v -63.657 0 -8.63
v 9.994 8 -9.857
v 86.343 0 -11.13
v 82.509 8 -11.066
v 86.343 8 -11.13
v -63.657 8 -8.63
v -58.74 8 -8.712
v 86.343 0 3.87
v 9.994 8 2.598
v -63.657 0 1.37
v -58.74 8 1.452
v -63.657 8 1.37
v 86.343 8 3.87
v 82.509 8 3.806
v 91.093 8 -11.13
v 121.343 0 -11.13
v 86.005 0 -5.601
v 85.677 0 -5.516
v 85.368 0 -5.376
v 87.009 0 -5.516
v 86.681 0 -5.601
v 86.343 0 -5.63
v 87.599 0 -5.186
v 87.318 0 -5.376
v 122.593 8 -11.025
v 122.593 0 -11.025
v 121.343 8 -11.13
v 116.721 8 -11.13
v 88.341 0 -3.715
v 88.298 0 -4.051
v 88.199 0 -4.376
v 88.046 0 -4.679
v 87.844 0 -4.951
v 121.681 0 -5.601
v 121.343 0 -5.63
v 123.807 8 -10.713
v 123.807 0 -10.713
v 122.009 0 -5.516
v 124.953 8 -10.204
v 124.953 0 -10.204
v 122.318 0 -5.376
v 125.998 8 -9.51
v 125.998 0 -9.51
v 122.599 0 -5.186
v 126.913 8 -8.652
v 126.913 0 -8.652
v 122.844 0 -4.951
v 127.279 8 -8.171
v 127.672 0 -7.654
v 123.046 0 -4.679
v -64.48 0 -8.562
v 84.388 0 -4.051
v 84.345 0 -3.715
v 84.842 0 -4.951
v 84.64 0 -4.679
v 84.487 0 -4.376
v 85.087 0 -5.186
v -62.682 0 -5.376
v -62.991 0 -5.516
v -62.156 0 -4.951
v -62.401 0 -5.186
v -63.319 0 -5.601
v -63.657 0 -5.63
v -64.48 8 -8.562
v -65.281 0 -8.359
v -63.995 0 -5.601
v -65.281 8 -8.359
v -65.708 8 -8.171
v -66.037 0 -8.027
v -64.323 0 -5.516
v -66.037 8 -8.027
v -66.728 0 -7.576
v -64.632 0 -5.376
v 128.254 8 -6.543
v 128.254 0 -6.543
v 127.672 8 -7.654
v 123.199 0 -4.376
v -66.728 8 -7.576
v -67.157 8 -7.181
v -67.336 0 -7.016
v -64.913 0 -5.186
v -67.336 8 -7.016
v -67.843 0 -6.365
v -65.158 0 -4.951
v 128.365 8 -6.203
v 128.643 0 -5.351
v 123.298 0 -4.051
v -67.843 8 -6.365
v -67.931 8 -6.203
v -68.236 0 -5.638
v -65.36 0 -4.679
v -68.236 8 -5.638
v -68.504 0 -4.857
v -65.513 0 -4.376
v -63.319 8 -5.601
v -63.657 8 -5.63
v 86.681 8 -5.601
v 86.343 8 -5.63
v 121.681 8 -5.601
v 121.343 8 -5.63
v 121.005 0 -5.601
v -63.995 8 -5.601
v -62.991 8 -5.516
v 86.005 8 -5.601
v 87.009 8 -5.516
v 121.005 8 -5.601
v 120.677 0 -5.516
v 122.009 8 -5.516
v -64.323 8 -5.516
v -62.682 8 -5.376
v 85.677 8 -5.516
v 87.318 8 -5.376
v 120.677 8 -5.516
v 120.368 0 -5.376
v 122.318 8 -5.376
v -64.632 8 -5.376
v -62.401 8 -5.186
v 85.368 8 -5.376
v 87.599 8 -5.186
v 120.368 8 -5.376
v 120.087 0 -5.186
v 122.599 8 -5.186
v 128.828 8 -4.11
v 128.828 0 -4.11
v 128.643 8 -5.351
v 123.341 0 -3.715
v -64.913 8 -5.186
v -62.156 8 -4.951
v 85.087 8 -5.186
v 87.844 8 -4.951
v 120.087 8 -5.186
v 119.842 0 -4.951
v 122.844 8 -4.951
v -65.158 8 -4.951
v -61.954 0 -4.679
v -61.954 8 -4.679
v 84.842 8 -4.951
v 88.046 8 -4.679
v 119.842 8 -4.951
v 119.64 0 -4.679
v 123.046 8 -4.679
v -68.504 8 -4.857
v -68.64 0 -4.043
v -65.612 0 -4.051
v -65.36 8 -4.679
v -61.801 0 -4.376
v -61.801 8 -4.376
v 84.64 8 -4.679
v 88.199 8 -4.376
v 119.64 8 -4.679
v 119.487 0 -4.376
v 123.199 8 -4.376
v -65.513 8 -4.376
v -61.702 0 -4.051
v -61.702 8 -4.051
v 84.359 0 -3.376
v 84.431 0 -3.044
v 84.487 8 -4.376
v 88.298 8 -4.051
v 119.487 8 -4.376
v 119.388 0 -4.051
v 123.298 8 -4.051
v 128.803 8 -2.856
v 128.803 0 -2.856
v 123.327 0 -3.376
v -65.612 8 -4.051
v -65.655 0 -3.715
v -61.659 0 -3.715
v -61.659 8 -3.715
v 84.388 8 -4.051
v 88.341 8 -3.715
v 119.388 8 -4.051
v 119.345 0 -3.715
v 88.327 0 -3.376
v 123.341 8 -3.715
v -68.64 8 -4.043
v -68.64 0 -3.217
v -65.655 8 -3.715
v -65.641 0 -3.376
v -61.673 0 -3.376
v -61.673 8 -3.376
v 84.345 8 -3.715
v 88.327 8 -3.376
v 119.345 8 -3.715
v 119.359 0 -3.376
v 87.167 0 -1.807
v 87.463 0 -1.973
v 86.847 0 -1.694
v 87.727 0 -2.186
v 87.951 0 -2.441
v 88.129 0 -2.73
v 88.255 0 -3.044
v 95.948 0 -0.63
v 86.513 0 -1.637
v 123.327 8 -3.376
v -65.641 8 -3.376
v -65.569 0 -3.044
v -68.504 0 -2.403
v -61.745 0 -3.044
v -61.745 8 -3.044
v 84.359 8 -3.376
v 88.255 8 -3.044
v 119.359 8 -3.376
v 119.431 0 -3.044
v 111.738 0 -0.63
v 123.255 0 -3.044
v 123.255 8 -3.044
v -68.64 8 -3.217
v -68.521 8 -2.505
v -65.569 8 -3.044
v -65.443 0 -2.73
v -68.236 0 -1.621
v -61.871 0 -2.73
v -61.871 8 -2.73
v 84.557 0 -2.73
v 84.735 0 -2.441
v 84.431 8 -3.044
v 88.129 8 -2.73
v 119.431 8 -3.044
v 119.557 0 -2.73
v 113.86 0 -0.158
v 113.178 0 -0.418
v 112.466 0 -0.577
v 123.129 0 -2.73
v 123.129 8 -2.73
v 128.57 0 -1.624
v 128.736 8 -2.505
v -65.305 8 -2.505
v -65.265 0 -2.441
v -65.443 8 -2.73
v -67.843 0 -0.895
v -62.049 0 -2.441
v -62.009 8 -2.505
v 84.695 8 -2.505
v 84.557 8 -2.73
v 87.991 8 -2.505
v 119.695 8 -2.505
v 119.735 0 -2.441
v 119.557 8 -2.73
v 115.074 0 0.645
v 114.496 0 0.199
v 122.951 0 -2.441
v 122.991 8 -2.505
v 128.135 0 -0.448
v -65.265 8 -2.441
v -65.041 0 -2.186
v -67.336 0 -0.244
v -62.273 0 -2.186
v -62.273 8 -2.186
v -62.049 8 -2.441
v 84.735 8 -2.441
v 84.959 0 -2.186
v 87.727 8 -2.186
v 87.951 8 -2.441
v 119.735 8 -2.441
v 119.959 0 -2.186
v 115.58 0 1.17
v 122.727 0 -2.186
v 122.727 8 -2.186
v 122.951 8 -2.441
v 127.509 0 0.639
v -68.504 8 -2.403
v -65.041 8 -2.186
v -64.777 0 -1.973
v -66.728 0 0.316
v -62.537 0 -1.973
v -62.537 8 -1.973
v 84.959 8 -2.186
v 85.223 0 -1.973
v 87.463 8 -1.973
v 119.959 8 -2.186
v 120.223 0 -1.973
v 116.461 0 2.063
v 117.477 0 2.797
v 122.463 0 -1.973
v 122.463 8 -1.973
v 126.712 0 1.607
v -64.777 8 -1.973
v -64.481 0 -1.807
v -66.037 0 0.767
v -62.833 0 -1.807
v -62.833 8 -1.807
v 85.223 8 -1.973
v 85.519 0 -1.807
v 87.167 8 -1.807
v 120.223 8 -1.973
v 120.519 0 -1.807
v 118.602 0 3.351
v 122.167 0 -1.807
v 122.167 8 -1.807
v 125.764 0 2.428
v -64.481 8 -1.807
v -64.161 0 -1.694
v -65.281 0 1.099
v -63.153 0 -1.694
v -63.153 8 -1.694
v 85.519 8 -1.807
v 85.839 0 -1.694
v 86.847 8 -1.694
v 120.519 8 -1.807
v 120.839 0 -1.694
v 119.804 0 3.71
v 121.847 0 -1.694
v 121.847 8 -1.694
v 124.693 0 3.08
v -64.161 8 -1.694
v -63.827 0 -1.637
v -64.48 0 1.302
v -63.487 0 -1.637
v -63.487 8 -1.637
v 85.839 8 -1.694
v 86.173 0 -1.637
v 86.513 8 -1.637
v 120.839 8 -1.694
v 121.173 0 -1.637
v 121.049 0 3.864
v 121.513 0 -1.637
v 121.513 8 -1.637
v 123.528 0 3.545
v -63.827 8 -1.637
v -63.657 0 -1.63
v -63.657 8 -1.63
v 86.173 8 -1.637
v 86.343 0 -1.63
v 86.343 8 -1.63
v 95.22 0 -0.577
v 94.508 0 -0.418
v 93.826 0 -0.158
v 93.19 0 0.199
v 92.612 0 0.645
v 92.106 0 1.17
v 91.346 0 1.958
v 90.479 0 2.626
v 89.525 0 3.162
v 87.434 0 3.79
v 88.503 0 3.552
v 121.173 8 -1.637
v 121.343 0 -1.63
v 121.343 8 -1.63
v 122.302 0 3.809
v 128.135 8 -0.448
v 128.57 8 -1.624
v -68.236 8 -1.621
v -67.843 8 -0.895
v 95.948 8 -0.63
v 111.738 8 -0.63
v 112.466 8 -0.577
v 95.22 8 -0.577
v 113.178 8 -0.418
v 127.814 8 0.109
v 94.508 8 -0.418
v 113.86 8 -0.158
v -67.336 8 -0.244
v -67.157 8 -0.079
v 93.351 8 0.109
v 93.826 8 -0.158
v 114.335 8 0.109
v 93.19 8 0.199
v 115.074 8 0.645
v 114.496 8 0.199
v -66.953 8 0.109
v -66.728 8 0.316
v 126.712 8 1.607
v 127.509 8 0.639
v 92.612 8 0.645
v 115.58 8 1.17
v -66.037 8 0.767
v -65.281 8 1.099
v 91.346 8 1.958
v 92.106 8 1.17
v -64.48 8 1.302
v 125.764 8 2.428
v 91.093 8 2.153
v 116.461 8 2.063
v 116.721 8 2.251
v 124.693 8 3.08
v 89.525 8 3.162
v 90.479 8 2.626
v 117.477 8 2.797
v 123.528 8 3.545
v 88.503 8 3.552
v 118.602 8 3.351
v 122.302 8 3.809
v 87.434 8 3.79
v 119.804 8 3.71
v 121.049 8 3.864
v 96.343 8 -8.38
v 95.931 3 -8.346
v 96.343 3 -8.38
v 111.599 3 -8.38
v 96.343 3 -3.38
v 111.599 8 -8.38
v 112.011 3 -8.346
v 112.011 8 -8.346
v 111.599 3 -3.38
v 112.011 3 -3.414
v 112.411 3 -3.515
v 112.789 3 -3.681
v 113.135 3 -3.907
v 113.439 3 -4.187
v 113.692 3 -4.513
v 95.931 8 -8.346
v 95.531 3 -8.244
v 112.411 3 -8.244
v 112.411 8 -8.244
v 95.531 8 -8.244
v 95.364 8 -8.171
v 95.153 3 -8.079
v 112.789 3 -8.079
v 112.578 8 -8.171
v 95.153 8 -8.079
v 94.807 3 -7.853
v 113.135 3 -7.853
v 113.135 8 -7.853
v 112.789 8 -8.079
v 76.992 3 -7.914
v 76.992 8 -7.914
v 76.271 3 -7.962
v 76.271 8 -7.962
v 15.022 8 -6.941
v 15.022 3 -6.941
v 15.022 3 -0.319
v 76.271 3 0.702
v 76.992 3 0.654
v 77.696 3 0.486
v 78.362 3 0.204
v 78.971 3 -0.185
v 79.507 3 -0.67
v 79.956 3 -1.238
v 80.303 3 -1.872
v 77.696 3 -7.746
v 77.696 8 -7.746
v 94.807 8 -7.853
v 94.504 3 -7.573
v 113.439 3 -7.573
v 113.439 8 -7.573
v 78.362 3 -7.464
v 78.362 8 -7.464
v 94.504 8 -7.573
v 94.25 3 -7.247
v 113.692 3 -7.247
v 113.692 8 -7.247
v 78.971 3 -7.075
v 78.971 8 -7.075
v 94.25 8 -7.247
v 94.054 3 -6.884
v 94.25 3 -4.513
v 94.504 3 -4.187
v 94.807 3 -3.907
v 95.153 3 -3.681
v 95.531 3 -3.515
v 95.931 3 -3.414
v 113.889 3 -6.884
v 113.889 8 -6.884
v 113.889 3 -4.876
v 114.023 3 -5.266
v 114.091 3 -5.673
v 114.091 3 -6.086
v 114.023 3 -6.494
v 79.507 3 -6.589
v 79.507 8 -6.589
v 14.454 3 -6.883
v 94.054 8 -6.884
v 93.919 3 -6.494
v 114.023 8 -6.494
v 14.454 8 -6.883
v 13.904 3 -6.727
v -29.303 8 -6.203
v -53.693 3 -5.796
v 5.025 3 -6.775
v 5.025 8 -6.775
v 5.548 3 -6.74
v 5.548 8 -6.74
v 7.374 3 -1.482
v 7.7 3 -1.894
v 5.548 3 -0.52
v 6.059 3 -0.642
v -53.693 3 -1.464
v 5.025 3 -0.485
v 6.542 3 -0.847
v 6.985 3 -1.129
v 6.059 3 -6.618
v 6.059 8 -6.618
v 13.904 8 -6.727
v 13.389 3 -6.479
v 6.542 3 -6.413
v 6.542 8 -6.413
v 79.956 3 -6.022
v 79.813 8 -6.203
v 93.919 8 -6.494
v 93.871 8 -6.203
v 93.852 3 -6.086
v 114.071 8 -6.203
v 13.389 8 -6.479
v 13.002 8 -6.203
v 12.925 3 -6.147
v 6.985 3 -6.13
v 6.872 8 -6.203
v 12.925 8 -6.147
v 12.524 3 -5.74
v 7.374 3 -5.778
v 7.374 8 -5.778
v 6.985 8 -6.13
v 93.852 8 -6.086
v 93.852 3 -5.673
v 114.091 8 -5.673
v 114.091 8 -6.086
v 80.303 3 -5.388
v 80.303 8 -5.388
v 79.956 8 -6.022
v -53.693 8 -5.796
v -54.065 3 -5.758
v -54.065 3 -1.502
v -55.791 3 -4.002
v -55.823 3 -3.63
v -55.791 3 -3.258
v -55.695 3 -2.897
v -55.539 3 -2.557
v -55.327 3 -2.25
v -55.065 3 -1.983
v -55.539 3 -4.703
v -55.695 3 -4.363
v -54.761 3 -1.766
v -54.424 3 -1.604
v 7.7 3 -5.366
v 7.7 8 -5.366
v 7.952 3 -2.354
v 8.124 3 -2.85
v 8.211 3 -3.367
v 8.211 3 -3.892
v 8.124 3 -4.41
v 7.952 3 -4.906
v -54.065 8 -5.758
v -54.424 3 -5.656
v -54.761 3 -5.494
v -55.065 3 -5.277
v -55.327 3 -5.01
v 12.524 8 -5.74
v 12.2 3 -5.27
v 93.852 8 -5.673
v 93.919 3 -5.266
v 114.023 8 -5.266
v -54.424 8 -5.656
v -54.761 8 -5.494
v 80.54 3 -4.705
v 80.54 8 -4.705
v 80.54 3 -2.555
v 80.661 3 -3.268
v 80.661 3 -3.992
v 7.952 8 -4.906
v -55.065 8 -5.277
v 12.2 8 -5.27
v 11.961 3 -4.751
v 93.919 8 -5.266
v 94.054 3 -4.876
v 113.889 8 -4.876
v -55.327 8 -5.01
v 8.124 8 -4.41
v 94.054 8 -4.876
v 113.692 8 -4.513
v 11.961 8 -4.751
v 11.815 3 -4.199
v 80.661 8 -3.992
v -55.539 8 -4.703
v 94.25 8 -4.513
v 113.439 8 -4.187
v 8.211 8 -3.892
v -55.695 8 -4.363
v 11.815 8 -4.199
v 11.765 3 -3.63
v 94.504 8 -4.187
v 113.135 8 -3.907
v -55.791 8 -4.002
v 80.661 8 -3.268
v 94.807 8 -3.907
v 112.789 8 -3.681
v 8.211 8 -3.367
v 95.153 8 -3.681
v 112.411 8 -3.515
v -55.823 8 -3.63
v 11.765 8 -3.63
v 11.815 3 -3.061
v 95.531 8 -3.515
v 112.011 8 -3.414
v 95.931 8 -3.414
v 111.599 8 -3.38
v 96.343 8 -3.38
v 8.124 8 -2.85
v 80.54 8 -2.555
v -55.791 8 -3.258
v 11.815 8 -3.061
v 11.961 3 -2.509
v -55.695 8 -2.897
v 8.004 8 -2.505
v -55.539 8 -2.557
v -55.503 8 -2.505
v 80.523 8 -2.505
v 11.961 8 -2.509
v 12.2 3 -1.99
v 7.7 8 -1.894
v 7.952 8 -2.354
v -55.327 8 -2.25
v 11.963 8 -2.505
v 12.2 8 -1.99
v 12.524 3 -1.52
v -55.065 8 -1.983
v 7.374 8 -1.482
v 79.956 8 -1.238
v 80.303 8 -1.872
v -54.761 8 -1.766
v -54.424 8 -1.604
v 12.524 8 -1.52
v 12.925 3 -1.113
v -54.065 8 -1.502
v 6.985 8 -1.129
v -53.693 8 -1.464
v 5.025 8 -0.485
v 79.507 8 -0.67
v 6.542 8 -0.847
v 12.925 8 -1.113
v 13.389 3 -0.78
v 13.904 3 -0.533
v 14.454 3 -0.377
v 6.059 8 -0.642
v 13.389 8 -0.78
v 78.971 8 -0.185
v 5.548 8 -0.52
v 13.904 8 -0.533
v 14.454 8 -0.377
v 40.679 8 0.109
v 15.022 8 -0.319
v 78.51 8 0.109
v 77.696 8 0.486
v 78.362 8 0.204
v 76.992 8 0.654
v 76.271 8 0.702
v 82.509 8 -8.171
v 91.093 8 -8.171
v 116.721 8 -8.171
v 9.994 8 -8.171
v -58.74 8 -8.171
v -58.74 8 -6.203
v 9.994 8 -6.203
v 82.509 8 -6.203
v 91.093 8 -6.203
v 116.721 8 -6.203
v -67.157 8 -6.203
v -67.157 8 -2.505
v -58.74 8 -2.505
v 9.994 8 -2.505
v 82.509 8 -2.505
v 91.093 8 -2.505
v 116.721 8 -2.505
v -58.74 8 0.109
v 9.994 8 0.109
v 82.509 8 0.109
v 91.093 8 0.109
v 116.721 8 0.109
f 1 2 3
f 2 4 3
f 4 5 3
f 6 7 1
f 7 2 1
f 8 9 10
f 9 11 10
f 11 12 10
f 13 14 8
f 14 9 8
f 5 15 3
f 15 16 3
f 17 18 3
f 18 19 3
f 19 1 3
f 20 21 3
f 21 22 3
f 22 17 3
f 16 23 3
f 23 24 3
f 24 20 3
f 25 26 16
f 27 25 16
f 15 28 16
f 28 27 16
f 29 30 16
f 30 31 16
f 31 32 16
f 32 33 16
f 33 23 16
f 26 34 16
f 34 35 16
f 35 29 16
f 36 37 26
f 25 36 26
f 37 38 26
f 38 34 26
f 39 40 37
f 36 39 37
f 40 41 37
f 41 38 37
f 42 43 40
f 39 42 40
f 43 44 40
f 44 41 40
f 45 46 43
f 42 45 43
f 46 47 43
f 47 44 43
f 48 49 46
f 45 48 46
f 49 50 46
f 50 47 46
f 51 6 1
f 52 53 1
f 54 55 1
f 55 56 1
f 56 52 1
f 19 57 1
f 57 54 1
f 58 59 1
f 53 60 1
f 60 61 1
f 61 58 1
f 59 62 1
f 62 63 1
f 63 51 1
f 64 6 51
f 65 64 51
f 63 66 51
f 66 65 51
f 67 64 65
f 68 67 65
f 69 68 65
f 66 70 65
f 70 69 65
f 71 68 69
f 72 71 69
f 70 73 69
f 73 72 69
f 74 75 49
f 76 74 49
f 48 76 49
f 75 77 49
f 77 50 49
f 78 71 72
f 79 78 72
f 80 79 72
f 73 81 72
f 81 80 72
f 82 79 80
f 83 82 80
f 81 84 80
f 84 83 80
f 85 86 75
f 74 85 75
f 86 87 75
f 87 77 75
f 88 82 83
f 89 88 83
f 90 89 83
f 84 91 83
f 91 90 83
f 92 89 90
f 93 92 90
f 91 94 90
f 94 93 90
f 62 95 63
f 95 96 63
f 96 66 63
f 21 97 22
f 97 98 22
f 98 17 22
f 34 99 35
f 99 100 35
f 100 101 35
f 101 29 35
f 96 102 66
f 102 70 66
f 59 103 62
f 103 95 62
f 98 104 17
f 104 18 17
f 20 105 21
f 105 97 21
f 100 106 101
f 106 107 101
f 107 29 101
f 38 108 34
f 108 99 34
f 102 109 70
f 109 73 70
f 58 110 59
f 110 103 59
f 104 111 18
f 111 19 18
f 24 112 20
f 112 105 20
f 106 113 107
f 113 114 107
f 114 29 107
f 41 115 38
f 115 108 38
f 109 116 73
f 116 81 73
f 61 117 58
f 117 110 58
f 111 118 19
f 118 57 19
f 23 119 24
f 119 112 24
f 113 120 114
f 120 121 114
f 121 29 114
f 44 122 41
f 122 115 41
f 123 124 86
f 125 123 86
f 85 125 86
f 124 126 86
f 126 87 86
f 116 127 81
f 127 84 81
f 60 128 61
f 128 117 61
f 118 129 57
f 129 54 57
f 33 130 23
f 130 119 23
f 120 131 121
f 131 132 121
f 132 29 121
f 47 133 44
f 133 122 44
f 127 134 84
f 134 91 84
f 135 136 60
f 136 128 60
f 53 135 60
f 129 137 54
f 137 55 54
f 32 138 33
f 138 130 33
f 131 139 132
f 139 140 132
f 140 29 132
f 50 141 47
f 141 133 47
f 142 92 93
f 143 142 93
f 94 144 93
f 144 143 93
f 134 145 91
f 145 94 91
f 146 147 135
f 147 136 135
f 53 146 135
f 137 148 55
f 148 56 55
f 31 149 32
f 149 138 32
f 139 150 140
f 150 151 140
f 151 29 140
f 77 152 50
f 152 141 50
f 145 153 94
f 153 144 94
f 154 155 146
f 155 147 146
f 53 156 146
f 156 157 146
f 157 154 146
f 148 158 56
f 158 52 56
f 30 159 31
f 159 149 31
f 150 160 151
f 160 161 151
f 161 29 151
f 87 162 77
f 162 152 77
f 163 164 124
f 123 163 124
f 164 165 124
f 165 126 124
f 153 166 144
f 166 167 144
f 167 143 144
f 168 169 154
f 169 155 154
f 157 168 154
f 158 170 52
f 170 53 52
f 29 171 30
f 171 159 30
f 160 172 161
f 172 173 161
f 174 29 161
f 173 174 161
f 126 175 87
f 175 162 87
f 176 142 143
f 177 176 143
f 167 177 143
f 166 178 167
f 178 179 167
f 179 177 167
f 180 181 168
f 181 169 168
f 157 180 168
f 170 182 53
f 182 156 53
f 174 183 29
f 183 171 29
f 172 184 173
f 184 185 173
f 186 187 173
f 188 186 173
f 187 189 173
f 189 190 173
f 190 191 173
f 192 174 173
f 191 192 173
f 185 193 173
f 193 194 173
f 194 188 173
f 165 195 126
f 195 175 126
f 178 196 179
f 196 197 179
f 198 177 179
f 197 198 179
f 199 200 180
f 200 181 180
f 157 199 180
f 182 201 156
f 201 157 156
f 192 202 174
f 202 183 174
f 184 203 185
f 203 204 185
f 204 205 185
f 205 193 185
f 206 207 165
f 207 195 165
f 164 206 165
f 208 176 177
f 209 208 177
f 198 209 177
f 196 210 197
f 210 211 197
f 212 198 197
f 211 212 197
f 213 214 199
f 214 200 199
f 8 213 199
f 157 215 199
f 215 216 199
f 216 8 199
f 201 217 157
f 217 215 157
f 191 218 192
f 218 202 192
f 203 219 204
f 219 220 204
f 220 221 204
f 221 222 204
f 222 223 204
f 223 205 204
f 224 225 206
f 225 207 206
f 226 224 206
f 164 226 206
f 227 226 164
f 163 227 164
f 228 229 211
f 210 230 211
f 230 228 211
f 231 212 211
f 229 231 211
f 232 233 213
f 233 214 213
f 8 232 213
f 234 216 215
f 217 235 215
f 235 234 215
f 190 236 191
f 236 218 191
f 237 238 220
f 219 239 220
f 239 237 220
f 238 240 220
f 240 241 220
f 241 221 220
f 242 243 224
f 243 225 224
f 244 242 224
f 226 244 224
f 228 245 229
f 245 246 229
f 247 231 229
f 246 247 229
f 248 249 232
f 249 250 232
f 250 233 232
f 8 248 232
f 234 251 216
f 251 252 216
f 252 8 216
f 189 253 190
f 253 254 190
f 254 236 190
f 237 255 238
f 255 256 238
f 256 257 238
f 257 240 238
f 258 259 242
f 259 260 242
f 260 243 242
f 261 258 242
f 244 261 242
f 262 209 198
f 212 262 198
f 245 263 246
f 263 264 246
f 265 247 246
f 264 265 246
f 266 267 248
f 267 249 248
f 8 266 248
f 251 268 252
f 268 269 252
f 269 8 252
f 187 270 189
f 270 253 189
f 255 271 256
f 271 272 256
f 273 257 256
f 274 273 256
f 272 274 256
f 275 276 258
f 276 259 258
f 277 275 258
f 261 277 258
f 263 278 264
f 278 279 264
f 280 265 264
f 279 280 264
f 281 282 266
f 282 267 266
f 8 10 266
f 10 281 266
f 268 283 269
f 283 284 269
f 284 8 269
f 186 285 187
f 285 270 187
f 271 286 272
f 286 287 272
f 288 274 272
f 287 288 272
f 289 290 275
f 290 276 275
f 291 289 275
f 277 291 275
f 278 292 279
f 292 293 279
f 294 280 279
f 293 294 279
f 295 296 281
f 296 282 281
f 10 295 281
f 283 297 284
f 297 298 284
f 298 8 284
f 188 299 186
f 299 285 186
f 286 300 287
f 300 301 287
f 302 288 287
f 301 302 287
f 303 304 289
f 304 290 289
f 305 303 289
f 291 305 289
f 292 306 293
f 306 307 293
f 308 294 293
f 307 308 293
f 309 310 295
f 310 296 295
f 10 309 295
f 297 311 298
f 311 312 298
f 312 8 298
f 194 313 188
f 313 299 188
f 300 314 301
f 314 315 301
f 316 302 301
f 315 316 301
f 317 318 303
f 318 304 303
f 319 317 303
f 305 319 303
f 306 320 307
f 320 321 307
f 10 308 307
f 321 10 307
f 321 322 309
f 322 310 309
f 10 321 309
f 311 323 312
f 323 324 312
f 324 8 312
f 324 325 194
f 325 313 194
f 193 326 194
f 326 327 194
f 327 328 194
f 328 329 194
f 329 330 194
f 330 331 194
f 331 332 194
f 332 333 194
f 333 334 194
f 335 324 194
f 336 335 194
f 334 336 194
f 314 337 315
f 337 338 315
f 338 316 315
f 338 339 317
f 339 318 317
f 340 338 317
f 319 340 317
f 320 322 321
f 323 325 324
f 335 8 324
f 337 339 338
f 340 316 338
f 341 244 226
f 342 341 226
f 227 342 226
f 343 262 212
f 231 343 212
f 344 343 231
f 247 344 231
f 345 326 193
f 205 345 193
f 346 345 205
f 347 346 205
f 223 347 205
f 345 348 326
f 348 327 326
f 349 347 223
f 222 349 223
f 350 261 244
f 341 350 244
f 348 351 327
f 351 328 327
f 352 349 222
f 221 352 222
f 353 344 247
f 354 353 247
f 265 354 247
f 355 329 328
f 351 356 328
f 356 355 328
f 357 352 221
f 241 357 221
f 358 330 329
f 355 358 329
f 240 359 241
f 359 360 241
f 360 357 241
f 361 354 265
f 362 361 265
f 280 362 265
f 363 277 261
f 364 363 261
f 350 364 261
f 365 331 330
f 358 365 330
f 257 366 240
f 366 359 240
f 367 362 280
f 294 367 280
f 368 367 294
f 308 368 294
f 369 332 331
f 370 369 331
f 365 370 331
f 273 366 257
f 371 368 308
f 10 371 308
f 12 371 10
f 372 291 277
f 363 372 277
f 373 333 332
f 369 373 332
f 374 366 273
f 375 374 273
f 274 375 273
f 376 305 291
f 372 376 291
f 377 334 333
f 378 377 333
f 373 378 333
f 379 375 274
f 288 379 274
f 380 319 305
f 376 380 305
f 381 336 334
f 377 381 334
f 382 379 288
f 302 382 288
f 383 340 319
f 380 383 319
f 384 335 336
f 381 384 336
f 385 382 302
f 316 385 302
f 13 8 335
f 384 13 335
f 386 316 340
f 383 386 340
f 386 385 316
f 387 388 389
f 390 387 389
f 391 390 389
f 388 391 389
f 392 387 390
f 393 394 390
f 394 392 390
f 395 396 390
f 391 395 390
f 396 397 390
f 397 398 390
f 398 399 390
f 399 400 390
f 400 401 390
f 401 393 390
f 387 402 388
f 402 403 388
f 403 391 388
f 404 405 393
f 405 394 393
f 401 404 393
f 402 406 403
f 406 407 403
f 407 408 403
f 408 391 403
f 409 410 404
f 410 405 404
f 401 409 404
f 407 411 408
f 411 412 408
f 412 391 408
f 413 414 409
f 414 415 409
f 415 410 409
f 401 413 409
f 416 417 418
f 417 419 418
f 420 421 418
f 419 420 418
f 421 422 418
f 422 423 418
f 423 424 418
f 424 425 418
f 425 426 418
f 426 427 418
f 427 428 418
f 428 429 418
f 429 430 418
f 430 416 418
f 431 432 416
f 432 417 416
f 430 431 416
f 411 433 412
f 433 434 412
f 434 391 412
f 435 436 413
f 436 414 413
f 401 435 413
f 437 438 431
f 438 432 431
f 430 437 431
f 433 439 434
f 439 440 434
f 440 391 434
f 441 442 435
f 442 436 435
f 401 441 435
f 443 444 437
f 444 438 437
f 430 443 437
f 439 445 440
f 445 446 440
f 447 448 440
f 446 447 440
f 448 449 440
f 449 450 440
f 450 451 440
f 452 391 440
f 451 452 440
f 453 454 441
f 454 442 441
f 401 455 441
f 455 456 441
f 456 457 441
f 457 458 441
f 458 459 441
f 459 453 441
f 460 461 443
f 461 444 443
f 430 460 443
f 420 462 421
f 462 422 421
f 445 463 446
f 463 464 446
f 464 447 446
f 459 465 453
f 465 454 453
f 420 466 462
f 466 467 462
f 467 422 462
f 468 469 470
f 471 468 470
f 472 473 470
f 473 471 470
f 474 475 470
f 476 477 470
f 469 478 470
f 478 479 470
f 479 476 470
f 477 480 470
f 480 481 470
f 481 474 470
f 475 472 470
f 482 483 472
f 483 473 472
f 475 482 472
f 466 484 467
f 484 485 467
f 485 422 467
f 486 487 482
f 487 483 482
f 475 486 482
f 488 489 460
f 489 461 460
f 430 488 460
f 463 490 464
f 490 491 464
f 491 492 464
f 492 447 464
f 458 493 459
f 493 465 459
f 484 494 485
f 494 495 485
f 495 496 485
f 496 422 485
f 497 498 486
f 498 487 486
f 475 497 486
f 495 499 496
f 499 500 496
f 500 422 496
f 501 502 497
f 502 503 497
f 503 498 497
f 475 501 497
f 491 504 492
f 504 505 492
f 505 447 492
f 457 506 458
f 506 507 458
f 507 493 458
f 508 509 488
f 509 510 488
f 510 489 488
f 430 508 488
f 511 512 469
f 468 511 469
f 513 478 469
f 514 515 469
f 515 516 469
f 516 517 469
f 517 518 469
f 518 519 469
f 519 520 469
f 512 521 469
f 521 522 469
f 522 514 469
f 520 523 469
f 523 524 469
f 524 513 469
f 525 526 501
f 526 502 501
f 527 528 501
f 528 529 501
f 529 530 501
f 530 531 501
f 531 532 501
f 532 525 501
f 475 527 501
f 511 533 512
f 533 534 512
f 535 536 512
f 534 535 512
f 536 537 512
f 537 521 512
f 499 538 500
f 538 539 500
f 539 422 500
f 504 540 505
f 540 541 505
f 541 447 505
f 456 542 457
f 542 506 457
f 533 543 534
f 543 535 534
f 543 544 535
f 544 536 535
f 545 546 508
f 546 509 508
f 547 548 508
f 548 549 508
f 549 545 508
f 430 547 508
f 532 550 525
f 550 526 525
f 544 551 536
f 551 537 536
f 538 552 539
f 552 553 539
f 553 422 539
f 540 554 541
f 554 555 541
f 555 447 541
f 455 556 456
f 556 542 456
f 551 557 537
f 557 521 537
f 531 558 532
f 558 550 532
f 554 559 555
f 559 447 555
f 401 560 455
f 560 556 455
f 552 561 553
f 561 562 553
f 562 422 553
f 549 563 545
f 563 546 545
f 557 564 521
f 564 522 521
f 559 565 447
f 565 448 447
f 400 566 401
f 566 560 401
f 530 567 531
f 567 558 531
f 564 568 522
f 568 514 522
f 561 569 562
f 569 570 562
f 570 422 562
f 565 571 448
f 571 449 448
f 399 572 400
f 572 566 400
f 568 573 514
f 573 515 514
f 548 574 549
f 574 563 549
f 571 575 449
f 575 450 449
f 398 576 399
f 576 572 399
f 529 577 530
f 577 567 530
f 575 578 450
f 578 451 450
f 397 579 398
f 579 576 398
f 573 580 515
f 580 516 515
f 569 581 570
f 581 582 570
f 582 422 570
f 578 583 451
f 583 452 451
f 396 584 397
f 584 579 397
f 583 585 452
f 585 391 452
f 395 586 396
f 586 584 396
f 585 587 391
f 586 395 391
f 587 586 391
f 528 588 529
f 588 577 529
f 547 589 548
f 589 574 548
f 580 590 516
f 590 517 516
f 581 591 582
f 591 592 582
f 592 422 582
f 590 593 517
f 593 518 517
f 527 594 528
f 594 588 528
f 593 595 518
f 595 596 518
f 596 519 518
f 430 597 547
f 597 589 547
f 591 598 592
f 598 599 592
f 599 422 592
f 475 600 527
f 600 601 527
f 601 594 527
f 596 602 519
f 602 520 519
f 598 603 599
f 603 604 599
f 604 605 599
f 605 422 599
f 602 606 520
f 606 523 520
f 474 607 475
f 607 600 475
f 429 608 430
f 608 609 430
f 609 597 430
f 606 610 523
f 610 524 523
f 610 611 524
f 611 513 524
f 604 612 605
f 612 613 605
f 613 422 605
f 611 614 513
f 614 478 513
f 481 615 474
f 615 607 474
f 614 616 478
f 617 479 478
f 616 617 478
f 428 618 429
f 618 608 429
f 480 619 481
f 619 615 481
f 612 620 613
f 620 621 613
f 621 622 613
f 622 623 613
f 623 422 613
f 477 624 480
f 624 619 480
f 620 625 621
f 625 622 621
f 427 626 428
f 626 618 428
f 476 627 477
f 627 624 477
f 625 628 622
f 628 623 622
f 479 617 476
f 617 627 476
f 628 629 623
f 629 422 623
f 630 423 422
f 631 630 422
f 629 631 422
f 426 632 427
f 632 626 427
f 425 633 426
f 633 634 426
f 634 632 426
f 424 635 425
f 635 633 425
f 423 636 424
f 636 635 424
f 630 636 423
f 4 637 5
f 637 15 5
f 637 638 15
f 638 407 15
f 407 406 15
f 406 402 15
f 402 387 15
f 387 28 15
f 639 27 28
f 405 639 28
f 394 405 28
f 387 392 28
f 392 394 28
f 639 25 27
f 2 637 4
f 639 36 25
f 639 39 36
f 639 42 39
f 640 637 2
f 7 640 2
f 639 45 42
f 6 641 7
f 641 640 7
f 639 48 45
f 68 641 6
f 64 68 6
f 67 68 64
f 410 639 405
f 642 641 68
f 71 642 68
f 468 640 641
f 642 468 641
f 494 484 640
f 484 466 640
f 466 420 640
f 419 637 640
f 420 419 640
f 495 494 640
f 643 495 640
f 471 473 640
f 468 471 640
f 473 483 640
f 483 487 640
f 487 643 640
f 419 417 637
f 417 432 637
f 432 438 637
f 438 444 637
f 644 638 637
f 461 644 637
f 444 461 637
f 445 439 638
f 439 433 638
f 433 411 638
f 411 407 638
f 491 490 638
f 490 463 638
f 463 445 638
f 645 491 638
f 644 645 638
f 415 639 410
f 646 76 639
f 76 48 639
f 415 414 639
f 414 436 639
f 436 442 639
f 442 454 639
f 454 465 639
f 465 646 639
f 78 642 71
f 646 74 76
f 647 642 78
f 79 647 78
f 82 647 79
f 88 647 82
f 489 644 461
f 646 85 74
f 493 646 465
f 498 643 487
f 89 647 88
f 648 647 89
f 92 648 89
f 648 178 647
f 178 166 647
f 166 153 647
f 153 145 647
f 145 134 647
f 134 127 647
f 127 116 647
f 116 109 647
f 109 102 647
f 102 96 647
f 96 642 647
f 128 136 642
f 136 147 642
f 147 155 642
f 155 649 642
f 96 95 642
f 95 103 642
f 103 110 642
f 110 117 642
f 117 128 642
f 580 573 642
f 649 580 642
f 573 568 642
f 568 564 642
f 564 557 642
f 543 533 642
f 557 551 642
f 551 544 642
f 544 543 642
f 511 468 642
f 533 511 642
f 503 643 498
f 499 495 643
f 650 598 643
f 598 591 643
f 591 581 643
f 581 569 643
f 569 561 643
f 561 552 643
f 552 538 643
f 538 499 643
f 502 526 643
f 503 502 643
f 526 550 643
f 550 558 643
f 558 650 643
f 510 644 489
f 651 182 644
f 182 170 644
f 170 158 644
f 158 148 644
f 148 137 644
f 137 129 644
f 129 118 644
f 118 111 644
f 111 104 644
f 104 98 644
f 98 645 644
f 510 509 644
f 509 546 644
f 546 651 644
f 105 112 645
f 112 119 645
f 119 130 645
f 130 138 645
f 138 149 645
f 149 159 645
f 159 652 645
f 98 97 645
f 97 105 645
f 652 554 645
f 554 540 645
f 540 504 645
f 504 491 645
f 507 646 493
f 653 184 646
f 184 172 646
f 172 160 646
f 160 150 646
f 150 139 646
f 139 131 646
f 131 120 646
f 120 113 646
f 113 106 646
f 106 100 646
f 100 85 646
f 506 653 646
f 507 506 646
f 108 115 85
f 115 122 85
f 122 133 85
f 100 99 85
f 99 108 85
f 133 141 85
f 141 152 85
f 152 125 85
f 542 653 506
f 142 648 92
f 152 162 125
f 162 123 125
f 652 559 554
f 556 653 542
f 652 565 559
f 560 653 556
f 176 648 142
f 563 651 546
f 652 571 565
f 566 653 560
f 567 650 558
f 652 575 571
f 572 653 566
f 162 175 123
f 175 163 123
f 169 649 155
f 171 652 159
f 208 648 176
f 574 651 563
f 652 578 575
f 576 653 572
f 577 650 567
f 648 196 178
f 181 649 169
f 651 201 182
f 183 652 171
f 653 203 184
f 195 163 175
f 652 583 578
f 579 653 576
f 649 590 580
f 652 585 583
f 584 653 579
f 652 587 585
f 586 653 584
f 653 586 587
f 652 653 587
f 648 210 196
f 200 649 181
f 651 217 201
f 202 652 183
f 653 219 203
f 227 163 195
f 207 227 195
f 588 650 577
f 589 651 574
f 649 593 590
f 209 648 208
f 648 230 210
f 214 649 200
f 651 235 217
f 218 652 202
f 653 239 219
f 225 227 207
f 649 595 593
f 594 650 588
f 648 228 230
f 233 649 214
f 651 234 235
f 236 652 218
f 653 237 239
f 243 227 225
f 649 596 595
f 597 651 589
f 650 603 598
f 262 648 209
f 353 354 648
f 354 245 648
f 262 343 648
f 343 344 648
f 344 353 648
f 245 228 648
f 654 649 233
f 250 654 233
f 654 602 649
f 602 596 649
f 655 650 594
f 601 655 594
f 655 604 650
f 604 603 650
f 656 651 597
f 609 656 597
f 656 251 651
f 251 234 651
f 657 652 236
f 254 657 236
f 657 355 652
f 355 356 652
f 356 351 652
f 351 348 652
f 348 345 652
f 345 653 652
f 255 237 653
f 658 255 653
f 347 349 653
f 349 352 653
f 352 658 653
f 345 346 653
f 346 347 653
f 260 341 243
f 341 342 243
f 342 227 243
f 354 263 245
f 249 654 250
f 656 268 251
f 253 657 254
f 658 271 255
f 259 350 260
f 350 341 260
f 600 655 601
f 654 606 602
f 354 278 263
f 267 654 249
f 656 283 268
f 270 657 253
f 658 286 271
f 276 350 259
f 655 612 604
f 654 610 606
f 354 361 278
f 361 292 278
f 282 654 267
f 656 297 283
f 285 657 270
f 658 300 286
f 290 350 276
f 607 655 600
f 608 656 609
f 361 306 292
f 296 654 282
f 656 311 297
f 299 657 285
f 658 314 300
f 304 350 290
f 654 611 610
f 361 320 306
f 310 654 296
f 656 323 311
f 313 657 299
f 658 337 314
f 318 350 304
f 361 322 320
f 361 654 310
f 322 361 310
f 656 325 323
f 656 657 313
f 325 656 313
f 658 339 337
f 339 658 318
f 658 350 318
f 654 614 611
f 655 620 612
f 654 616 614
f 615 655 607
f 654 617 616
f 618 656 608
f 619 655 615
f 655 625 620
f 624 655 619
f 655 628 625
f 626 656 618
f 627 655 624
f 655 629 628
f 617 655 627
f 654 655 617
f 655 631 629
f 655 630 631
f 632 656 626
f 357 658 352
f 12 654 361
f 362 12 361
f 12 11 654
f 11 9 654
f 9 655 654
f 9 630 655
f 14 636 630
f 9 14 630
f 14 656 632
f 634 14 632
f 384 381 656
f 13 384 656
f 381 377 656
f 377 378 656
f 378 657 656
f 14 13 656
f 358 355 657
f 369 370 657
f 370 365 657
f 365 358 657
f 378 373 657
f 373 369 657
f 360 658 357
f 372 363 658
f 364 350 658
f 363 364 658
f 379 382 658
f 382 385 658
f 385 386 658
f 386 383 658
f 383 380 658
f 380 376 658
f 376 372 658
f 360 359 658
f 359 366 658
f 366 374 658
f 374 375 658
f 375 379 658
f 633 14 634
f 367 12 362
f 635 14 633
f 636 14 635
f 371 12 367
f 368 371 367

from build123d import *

# Parameters (mm, degrees)
SKETCH1_R           = 2
BOSS_EXTRUDE1_DEPTH = 8
CUT_EXTRUDE1_DEPTH  = 5


with BuildPart() as part:
    # Sketch1 → Boss-Extrude1 (new body)
    with BuildSketch(Plane(origin=(0, 0, 0), x_dir=(1, 0, 0), z_dir=(0, 1, 0))):
        with BuildLine():
            Line((121.34297014, 11.1299482), (86.34297014, 11.1299482))
            Line((86.34297014, 11.1299482), (-63.65702986, 8.6299482))
            ThreePointArc((-63.65702986, 8.6299482), (-68.65702986, 3.6299482), (-63.65702986, -1.3700518))
            Line((-63.65702986, -1.3700518), (86.34297014, -3.8700518))
            ThreePointArc((86.34297014, -3.8700518), (89.524950656, -3.161590654), (92.105781954, -1.1700518))
            ThreePointArc((92.105781954, -1.1700518), (93.826336153, 0.157640769), (95.947656497, 0.6299482))
            Line((95.947656497, 0.6299482), (111.738283784, 0.6299482))
            ThreePointArc((111.738283784, 0.6299482), (113.859604128, 0.157640769), (115.580158327, -1.1700518))
            ThreePointArc((115.580158327, -1.1700518), (118.160989625, -3.161590654), (121.34297014, -3.8700518))
            ThreePointArc((121.34297014, -3.8700518), (125.450889322, -2.645001999), (128.216833683, 0.6299482))
            ThreePointArc((128.216833683, 0.6299482), (127.617920339, 7.737867381), (121.34297014, 11.1299482))
        make_face()
        with Locations(Location((-63.65702986, 3.6299482, 0), (0, 0, 270))):
            Circle(SKETCH1_R, mode=Mode.SUBTRACT)
        with Locations(Location((86.34297014, 3.6299482, 0), (0, 0, 270))):
            Circle(SKETCH1_R, mode=Mode.SUBTRACT)
        with Locations(Location((121.34297014, 3.6299482, 0), (0, 0, 270))):
            Circle(SKETCH1_R, mode=Mode.SUBTRACT)
    extrude(amount=BOSS_EXTRUDE1_DEPTH)

    # Sketch2 → Cut-Extrude1 (cut)
    with BuildSketch(Plane(origin=(0, 8, 0), x_dir=(1, 0, 0), z_dir=(0, 1, 0))):
        with BuildLine():
            Line((-53.693130943, 5.796013182), (5.024715148, 6.77464395))
            ThreePointArc((5.024715148, 6.77464395), (8.222259227, 3.6299482), (5.024715148, 0.48525245))
            Line((5.024715148, 0.48525245), (-53.693130943, 1.463883218))
            ThreePointArc((-53.693130943, 1.463883218), (-55.823395663, 3.6299482), (-53.693130943, 5.796013182))
        make_face()
        with BuildLine():
            Line((96.34297014, 8.3799482), (111.599382505, 8.3799482))
            ThreePointArc((111.599382505, 8.3799482), (114.099382505, 5.8799482), (111.599382505, 3.3799482))
            Line((111.599382505, 3.3799482), (96.34297014, 3.3799482))
            ThreePointArc((96.34297014, 3.3799482), (93.84297014, 5.8799482), (96.34297014, 8.3799482))
        make_face()
        with BuildLine():
            Line((15.021938142, 6.941264333), (76.270767974, 7.962078164))
            ThreePointArc((76.270767974, 7.962078164), (80.675701747, 3.6299482), (76.270767974, -0.702181764))
            Line((76.270767974, -0.702181764), (15.021938142, 0.318632067))
            ThreePointArc((15.021938142, 0.318632067), (11.765350737, 3.6299482), (15.021938142, 6.941264333))
        make_face()
    extrude(amount=-CUT_EXTRUDE1_DEPTH, mode=Mode.SUBTRACT)


solid = part.part
